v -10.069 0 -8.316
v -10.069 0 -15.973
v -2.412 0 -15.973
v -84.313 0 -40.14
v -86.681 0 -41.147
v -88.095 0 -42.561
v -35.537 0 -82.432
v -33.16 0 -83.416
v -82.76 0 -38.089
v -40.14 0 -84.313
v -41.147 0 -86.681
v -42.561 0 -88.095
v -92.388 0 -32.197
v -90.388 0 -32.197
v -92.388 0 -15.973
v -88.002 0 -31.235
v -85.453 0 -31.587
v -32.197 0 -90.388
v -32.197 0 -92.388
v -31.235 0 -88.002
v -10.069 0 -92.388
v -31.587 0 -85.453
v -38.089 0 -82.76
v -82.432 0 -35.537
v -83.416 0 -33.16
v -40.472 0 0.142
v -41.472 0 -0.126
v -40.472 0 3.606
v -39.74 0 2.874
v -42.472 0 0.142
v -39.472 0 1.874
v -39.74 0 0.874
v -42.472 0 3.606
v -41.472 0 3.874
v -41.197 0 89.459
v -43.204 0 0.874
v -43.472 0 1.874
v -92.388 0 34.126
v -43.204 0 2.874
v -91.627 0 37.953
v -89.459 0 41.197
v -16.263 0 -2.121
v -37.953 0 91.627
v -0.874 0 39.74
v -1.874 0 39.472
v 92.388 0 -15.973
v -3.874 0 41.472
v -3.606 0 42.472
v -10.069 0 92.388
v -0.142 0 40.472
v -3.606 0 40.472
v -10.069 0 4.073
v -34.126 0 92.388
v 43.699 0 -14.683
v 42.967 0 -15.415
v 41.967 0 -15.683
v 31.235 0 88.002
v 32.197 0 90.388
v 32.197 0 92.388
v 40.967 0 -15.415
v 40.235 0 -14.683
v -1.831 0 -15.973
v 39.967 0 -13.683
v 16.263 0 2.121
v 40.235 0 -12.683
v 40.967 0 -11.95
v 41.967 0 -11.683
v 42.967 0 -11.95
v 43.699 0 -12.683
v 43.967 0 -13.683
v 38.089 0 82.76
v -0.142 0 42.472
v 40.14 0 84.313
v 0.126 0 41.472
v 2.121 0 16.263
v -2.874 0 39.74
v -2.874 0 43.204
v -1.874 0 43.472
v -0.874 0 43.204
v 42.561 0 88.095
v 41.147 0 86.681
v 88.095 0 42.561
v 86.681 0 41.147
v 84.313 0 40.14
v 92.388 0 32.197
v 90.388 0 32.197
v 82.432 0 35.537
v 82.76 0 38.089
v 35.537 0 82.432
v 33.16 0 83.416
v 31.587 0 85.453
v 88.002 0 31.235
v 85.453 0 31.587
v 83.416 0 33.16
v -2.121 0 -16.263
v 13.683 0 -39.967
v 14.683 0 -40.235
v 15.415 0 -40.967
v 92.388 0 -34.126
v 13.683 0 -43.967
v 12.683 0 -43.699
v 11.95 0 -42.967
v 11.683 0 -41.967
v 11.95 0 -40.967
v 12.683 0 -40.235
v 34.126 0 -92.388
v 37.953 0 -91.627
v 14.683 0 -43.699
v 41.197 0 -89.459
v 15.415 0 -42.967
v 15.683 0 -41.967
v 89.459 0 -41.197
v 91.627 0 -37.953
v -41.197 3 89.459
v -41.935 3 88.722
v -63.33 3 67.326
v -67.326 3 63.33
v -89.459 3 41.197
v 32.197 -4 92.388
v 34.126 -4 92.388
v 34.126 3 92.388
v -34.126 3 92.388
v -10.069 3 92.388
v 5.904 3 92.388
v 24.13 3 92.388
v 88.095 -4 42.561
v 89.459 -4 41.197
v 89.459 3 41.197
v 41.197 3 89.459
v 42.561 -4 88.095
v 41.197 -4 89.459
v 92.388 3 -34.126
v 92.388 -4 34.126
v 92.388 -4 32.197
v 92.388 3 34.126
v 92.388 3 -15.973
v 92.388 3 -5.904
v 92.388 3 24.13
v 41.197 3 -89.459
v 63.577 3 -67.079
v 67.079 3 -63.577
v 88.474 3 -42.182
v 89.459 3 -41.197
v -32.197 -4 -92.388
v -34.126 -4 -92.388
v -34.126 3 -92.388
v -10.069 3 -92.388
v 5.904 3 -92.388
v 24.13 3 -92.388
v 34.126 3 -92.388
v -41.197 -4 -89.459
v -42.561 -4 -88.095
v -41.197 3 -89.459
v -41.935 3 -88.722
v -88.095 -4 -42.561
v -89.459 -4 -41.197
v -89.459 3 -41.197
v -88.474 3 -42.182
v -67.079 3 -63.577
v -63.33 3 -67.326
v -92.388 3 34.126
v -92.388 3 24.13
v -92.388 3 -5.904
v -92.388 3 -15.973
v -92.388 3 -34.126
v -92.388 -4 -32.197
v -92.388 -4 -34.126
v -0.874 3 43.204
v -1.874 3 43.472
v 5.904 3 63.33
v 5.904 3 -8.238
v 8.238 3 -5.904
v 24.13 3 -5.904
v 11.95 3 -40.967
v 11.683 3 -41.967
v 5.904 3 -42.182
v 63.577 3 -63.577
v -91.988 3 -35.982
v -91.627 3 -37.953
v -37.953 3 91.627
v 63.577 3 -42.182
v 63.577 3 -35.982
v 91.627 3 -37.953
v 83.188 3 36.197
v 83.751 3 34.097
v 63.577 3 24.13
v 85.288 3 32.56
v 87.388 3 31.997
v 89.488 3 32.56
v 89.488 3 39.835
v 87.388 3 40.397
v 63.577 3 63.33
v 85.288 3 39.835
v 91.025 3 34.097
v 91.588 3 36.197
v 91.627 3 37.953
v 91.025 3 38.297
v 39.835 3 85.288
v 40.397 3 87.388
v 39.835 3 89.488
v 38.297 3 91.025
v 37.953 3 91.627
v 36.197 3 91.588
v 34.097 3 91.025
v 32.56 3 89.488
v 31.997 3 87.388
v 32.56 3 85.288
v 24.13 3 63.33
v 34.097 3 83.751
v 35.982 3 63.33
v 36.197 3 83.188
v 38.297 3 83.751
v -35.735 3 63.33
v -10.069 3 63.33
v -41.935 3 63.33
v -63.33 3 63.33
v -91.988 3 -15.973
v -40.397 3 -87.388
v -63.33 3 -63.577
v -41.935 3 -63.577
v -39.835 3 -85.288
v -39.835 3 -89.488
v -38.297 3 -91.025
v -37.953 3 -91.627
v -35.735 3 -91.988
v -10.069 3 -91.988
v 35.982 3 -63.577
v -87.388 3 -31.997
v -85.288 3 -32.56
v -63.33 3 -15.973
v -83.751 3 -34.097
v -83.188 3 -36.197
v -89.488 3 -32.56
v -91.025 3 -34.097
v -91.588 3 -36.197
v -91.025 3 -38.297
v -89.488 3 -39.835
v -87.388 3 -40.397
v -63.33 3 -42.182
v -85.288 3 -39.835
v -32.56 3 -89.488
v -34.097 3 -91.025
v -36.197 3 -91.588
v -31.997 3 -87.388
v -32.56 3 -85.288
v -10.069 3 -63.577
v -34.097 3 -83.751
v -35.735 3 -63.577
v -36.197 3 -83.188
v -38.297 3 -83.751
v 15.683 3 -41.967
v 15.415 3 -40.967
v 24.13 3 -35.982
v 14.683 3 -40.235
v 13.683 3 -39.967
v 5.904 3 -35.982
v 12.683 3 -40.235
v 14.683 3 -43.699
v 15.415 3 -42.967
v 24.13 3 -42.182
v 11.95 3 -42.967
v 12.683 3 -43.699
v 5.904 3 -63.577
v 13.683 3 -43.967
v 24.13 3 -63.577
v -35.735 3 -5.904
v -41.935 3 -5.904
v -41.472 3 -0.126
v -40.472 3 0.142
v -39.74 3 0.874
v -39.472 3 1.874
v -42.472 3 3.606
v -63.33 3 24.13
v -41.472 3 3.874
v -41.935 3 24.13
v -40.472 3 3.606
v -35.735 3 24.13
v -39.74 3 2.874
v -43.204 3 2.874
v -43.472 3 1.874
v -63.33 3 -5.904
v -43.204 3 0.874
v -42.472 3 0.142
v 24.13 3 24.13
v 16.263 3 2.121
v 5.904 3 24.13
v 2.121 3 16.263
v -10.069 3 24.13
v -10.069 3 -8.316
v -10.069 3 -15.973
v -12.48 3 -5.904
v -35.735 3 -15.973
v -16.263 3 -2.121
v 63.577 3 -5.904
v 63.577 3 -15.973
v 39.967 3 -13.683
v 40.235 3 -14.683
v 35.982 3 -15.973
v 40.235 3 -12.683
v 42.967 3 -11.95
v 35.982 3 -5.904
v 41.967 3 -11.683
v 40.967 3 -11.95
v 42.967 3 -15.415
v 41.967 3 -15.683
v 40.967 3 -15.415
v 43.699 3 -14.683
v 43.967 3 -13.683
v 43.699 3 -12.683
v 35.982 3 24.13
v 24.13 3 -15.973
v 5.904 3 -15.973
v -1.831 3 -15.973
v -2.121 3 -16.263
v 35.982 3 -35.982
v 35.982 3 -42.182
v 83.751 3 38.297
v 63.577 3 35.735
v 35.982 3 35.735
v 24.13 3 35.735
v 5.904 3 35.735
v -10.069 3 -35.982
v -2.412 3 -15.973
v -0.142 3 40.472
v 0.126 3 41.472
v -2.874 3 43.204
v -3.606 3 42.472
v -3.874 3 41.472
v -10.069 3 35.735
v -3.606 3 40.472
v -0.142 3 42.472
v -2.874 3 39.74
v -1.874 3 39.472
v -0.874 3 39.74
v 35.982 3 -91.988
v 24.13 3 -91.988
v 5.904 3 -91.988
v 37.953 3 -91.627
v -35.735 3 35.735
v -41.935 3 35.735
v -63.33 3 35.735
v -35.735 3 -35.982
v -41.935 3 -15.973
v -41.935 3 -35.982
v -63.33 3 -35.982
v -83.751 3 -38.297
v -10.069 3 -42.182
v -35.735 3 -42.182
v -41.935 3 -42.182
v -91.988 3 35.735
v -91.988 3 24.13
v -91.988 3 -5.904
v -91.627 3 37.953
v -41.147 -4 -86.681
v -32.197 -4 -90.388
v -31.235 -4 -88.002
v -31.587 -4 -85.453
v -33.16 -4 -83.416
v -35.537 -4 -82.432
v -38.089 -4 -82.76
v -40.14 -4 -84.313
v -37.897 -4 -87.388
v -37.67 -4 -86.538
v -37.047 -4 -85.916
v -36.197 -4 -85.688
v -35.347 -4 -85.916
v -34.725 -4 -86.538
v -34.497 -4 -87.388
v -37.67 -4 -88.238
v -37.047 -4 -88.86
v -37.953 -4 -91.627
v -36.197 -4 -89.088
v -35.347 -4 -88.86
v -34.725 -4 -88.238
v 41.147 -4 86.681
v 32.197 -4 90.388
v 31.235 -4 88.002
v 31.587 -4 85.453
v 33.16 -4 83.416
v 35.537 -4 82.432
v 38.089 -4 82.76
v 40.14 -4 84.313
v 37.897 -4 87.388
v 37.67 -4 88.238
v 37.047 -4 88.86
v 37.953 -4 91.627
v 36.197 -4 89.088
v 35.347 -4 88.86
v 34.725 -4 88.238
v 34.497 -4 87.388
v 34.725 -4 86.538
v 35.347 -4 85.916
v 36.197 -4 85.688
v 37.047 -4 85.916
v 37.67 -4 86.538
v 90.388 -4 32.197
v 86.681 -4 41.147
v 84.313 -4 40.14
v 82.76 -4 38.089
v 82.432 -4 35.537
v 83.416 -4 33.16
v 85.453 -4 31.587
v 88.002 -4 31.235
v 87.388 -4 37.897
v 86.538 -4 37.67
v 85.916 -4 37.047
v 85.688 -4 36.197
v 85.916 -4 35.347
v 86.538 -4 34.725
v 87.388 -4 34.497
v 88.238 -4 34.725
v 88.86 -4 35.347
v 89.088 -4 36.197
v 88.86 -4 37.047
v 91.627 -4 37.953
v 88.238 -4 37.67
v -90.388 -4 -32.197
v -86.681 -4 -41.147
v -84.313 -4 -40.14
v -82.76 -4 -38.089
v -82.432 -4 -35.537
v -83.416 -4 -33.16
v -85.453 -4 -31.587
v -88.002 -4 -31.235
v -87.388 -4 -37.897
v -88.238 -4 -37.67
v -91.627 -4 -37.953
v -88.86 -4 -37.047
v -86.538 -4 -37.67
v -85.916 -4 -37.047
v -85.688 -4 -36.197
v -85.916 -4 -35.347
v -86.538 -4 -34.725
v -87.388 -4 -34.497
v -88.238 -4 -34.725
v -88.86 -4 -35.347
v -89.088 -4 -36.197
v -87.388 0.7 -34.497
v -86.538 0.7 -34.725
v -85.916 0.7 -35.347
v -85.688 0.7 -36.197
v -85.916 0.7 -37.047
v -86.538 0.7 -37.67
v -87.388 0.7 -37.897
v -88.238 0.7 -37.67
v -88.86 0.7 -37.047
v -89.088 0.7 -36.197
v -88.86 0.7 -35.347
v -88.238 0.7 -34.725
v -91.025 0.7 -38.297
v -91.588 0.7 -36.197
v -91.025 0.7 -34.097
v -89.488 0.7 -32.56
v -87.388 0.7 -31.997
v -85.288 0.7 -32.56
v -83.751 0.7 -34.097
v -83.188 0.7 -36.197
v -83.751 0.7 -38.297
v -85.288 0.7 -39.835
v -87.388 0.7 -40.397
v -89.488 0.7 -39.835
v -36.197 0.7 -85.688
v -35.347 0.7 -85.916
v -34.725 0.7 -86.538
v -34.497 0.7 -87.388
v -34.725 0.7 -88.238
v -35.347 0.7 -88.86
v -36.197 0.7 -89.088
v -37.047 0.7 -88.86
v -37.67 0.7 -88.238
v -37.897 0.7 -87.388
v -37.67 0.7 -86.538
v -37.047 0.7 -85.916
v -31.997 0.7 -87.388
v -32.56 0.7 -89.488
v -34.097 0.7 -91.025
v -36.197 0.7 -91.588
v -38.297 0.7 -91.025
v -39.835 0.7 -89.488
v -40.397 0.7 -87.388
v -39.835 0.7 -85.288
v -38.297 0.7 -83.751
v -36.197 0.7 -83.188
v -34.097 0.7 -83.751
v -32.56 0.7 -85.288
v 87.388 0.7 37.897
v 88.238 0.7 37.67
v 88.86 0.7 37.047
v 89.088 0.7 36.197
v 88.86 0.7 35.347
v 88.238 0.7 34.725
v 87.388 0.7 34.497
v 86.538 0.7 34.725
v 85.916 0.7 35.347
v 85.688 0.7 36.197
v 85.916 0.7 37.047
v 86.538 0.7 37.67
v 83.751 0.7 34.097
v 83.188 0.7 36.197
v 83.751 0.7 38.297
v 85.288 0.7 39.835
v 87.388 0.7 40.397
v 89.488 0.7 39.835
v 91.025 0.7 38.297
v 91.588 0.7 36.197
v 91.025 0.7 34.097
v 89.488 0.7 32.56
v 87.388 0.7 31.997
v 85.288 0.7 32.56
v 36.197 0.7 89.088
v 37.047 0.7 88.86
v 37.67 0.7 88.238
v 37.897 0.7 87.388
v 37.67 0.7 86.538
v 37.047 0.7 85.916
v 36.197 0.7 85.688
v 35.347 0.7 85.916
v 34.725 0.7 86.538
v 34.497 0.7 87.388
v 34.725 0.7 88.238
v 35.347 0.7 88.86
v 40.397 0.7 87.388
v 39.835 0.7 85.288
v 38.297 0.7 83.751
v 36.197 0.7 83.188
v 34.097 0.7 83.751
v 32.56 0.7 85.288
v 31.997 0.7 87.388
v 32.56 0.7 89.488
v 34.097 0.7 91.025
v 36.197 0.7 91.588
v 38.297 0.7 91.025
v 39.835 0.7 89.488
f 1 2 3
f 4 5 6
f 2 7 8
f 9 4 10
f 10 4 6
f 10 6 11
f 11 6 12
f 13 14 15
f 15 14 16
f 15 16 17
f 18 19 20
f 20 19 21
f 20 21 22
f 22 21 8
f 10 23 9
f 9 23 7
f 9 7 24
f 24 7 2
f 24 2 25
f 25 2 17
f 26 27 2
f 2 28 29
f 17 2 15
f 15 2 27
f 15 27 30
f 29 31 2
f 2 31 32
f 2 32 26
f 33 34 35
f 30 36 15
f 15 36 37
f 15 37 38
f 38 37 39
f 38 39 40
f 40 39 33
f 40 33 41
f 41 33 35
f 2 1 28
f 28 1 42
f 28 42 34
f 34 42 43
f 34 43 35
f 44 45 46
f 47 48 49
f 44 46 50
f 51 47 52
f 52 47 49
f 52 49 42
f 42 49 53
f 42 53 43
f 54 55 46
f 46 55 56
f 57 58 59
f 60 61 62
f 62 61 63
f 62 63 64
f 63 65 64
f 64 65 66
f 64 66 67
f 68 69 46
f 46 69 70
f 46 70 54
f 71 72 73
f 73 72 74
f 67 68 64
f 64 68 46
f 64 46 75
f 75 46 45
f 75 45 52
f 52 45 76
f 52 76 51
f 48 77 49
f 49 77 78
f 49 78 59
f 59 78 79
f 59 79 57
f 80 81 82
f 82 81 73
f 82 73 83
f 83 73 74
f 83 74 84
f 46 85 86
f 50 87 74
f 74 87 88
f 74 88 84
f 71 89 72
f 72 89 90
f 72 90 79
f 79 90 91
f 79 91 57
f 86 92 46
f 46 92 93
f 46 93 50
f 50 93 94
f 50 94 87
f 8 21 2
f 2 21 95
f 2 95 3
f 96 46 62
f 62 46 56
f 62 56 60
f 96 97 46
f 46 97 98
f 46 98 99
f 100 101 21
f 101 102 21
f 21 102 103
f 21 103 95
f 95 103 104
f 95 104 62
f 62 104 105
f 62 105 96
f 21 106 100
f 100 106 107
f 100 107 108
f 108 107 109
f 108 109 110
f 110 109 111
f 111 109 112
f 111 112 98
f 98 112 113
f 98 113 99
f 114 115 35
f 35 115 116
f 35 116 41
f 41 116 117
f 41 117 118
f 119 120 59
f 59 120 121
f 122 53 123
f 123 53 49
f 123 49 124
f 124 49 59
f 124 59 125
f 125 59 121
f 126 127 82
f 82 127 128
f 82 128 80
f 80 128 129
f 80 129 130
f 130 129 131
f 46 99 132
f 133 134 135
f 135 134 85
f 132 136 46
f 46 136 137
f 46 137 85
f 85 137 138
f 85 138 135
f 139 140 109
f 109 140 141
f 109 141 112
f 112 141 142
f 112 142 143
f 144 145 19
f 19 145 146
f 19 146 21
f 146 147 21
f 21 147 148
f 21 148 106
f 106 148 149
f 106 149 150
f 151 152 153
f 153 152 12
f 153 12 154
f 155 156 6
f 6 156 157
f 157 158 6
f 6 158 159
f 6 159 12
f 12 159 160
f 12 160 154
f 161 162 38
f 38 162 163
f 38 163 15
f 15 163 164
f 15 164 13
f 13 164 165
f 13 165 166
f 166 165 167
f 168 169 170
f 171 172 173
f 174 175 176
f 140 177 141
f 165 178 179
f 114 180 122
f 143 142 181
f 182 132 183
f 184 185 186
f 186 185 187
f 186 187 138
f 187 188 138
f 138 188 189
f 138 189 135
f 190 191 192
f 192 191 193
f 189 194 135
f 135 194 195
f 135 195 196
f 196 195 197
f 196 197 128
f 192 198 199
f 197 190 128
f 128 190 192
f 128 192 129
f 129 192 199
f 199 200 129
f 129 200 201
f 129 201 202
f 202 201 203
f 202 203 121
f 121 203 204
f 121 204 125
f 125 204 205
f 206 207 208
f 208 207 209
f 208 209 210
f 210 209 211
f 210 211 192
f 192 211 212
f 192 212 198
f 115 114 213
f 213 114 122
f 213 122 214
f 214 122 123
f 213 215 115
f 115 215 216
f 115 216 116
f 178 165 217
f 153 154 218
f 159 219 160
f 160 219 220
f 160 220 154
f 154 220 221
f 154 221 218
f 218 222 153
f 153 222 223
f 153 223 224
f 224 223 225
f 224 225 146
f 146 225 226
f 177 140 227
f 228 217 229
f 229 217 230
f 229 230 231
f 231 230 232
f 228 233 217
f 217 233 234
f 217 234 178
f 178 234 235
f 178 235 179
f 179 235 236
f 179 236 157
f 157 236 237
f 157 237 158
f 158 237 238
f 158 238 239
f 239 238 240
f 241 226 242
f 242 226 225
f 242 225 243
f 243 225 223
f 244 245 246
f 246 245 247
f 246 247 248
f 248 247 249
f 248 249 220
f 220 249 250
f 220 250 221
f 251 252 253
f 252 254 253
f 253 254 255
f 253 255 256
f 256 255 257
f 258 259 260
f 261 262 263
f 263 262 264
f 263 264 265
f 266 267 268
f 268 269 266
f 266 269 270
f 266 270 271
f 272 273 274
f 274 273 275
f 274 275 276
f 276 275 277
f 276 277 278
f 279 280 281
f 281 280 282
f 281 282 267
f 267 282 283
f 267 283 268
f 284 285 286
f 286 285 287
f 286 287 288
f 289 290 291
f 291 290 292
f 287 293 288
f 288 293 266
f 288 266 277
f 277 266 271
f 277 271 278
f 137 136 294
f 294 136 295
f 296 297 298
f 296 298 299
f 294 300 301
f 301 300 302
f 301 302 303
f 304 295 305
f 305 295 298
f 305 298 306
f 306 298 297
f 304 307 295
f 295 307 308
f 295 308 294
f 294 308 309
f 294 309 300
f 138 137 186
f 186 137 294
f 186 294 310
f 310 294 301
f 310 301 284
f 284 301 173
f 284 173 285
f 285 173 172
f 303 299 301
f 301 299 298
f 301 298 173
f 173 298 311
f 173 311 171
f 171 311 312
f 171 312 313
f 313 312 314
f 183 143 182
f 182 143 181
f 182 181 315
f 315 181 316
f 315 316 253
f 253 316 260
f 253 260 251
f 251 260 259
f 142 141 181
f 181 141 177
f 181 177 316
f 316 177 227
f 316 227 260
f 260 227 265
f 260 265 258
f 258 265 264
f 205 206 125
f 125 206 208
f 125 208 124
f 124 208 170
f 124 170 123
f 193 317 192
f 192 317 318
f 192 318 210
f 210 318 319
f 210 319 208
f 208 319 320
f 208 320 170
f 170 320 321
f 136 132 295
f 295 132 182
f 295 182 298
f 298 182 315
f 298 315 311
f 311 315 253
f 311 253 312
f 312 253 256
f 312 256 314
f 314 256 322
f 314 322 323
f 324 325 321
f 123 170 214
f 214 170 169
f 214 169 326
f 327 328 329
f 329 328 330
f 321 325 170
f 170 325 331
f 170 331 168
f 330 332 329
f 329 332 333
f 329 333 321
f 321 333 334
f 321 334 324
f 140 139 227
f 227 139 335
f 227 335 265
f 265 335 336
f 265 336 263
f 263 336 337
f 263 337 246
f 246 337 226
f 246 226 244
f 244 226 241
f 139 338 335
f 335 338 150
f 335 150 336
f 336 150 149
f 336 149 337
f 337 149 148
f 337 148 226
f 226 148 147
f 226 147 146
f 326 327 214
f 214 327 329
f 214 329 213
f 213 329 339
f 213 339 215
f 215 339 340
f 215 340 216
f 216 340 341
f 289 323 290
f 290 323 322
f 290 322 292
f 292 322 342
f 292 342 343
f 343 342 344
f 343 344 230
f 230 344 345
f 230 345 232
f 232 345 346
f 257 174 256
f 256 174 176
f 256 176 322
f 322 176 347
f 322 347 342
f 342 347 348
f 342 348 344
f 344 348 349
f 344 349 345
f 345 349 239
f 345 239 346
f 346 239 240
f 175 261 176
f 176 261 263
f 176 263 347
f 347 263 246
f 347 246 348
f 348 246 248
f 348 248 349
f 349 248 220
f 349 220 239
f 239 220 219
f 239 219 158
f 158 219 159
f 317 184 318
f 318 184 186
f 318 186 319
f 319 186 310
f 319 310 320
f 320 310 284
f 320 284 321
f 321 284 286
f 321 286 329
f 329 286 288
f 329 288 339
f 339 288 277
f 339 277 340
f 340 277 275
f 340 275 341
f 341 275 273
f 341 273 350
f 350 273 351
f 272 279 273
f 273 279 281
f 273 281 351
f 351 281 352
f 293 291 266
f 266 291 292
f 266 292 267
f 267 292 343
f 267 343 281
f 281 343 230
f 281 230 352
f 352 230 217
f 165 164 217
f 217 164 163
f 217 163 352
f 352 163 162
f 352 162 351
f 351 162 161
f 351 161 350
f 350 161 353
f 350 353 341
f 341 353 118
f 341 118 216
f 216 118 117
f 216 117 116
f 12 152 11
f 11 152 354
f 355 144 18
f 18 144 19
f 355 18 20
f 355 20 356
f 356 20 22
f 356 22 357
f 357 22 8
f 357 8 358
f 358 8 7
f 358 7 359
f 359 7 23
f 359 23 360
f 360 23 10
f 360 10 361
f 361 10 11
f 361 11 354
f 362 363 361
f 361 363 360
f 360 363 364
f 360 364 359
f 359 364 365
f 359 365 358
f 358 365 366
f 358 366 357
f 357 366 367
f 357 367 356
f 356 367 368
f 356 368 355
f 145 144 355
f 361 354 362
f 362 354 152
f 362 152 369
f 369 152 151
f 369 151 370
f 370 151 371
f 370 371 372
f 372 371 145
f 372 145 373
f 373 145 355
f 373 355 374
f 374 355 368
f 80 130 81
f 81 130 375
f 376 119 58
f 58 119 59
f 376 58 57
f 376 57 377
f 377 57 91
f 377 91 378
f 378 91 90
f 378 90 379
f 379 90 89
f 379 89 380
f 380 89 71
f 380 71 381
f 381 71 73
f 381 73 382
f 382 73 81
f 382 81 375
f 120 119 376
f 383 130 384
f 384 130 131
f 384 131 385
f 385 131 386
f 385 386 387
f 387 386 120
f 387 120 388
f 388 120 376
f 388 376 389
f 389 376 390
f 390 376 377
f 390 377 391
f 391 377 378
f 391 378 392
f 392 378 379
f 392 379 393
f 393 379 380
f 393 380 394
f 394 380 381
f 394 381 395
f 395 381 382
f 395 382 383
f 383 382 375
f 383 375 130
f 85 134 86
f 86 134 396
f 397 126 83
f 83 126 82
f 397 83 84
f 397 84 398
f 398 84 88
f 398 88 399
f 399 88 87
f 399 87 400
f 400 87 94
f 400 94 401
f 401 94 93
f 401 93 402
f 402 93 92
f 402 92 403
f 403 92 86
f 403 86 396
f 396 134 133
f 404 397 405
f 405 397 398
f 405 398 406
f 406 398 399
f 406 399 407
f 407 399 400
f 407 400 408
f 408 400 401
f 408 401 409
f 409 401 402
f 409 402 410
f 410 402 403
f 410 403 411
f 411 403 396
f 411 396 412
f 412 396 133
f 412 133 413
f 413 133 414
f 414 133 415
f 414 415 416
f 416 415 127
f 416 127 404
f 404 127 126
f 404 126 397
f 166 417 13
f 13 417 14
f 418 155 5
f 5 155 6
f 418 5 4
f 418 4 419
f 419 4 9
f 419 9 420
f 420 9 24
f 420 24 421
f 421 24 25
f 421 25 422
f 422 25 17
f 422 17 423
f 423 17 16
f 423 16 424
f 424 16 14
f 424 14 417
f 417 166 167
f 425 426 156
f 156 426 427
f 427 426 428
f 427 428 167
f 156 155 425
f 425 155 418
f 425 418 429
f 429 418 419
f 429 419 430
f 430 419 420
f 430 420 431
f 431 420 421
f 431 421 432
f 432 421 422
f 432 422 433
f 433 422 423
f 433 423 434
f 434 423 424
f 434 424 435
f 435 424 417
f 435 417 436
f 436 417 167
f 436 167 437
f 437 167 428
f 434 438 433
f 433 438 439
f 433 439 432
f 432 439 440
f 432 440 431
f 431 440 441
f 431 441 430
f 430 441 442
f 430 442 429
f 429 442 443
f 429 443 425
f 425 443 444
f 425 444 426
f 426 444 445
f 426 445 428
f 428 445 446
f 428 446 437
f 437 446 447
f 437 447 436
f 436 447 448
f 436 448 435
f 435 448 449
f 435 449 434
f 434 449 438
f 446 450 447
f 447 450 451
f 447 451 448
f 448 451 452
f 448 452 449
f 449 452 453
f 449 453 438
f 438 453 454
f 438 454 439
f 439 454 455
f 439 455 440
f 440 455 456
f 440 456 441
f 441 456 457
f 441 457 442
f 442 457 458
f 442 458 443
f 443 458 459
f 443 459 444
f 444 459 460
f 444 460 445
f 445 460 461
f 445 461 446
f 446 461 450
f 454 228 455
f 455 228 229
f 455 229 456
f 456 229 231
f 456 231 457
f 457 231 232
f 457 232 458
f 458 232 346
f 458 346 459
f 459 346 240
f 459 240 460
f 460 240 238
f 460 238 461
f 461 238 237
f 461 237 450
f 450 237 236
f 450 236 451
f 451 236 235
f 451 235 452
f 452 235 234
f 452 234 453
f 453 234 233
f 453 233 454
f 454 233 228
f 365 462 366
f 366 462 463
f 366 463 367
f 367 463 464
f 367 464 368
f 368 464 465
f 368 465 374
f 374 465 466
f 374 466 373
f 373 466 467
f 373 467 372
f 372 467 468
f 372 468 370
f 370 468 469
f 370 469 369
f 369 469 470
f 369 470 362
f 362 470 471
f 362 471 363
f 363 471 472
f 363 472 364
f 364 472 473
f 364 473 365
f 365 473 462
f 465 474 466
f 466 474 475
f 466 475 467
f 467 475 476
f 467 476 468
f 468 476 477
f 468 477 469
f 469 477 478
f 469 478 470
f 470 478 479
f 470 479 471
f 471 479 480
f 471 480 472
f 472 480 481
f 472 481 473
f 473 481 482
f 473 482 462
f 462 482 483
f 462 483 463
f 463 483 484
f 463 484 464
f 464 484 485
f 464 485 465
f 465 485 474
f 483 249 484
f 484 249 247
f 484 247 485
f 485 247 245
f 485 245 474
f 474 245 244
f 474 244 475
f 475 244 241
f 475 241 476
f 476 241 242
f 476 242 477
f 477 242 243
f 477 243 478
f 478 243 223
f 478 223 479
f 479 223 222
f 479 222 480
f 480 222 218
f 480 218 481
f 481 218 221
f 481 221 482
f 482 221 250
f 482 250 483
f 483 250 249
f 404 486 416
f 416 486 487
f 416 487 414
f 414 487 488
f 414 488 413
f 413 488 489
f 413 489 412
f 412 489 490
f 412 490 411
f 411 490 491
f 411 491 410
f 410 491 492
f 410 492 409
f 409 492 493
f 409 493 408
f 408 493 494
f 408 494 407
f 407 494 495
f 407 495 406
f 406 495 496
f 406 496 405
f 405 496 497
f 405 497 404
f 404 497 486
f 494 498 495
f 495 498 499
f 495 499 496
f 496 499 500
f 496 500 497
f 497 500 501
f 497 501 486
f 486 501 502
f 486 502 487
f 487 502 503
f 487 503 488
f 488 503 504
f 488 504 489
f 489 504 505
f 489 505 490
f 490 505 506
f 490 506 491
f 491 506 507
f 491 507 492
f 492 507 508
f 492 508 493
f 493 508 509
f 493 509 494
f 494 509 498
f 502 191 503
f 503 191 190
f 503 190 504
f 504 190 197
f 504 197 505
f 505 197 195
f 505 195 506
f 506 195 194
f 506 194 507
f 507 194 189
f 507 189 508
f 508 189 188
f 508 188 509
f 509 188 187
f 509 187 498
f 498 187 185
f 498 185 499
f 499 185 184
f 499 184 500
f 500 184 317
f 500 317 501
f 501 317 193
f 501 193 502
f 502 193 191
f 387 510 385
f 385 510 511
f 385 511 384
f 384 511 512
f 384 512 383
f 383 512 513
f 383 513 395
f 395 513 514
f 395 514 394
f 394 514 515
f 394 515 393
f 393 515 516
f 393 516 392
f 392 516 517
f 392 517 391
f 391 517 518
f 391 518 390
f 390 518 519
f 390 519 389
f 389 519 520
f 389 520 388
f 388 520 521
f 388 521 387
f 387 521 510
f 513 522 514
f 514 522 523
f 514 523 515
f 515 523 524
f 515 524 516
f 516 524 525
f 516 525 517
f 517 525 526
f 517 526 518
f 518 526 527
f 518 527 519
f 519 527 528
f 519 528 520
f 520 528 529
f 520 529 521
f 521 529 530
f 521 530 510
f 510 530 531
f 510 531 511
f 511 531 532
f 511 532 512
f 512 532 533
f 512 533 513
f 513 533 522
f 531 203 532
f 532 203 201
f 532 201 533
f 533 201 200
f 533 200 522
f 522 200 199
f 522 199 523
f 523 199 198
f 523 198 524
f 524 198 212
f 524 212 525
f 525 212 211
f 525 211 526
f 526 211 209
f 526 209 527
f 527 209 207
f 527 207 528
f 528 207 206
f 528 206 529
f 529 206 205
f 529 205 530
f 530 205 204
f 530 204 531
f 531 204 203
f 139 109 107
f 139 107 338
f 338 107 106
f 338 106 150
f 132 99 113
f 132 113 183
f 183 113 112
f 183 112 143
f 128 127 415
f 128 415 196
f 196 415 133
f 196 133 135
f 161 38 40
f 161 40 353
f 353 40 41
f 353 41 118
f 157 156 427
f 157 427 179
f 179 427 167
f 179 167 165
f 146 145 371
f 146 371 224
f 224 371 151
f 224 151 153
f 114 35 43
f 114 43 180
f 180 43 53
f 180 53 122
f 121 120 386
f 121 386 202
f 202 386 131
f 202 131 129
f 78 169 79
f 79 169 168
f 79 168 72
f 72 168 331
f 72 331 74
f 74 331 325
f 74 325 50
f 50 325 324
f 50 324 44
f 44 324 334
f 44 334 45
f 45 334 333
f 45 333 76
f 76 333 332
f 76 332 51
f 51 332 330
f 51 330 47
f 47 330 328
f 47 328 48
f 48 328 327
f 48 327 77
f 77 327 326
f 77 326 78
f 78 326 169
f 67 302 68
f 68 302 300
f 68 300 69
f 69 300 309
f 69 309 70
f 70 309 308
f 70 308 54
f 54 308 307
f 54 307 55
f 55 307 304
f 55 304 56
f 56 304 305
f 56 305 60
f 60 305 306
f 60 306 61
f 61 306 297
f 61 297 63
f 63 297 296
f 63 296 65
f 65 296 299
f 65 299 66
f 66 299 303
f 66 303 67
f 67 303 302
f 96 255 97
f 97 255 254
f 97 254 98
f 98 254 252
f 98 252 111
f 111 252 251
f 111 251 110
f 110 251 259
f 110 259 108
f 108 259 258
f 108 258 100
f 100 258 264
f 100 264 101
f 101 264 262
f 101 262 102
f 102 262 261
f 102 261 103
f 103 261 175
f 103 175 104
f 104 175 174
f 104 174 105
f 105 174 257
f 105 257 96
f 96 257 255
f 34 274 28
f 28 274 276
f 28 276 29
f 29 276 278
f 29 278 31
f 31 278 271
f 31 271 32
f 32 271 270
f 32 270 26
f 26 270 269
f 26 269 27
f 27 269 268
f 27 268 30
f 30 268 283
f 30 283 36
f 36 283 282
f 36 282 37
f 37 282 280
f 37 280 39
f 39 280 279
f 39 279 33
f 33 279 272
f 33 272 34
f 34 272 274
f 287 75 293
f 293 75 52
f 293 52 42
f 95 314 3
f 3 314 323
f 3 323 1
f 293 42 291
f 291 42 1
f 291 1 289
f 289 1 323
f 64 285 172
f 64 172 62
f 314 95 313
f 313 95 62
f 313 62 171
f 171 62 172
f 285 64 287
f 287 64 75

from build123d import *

# Parameters (mm, degrees)
BOSS_EXTRUDE1_DEPTH                              = 3
BOSS_EXTRUDE3_DEPTH                              = 7
CBORE_FOR_M3_HEX_HEAD_MACHINE_SCREW1_D           = 3.4
CBORE_FOR_M3_HEX_HEAD_MACHINE_SCREW1_CBORE_D     = 8.4
CBORE_FOR_M3_HEX_HEAD_MACHINE_SCREW1_CBORE_DEPTH = 2.3
FILLET1_R                                        = 10
SKETCH23_R                                       = 2
CUT_EXTRUDE1_DEPTH                               = 131.843677004
CUT_EXTRUDE2_DEPTH                               = 131.843677004


with BuildPart() as part:
    # Sketch1 → Boss-Extrude1 (new body)
    with BuildSketch(Plane(origin=(0, 0, 0), x_dir=(1, 0, 0), z_dir=(0, 1, 0))):
        Polygon((92.387953251, -38.268343237), (92.387953251, 38.268343237), (38.268343237, 92.387953251), (-38.268343237, 92.387953251), (-92.387953251, 38.268343237), (-92.387953251, -38.268343237), (-38.268343237, -92.387953251), (38.268343237, -92.387953251), align=None)
    extrude(amount=BOSS_EXTRUDE1_DEPTH)

    # Sketch13 → Boss-Extrude3 (add)
    with BuildSketch(Plane(origin=(0, 3, 0), x_dir=(1, 0, 0), z_dir=(0, 1, 0))):
        with BuildLine():
            ThreePointArc((-90.387953251, 32.197275425), (-82.768555589, 34.283858263), (-86.68084647, 41.147022893))
            Line((-86.68084647, 41.147022893), (-88.095060032, 42.561236455))
            Line((-88.095060032, 42.561236455), (-92.387953251, 38.268343237))
            Line((-92.387953251, 38.268343237), (-92.387953251, 32.197275425))
            Line((-92.387953251, 32.197275425), (-90.387953251, 32.197275425))
        make_face()
        with BuildLine():
            Line((92.387953251, -32.197275425), (90.387953251, -32.197275425))
            ThreePointArc((90.387953251, -32.197275425), (82.768555589, -34.283858263), (86.68084647, -41.147022893))
            Line((86.68084647, -41.147022893), (88.095060032, -42.561236455))
            Line((88.095060032, -42.561236455), (92.387953251, -38.268343237))
            Line((92.387953251, -38.268343237), (92.387953251, -32.197275425))
        make_face()
        with BuildLine():
            Line((38.268343237, -92.387953251), (42.561236455, -88.095060032))
            Line((42.561236455, -88.095060032), (41.147022893, -86.68084647))
            ThreePointArc((41.147022893, -86.68084647), (34.283858263, -82.768555589), (32.197275425, -90.387953251))
            Line((32.197275425, -90.387953251), (32.197275425, -92.387953251))
            Line((32.197275425, -92.387953251), (38.268343237, -92.387953251))
        make_face()
        with BuildLine():
            ThreePointArc((-41.147022893, 86.68084647), (-34.283858263, 82.768555589), (-32.197275425, 90.387953251))
            Line((-32.197275425, 90.387953251), (-32.197275425, 92.387953251))
            Line((-32.197275425, 92.387953251), (-38.268343237, 92.387953251))
            Line((-38.268343237, 92.387953251), (-42.561236455, 88.095060032))
            Line((-42.561236455, 88.095060032), (-41.147022893, 86.68084647))
        make_face()
    extrude(amount=-BOSS_EXTRUDE3_DEPTH)

    # CBORE for M3 Hex Head Machine Screw1 (through all)
    with Locations(Plane(origin=(0, 3, 0), x_dir=(1, 0, 0), z_dir=(0, 1, 0))):
        with Locations((36.197275425, -87.387953251), (87.387953251, -36.197275425), (-36.197275425, 87.387953251), (-87.387953251, 36.197275425)):
            CounterBoreHole(CBORE_FOR_M3_HEX_HEAD_MACHINE_SCREW1_D / 2, CBORE_FOR_M3_HEX_HEAD_MACHINE_SCREW1_CBORE_D / 2, CBORE_FOR_M3_HEX_HEAD_MACHINE_SCREW1_CBORE_DEPTH)

    # Fillet1
    fillet1_edges = [part.edges().sort_by_distance(p)[0] for p in [
        (-92.387953251, 1.5, 38.268343237),
        (-92.387953251, -0.5, -38.268343237),
        (-38.268343237, -0.5, -92.387953251),
        (38.268343237, 1.5, -92.387953251),
        (92.387953251, 1.5, -38.268343237),
        (92.387953251, -0.5, 38.268343237),
        (38.268343237, -0.5, 92.387953251),
        (-38.268343237, 1.5, 92.387953251),
    ]]
    fillet(fillet1_edges, radius=FILLET1_R)

    # Sketch23 → Cut-Extrude1 (cut, through all)
    with BuildSketch(Plane(origin=(0, 3, 0), x_dir=(1, 0, 0), z_dir=(0, 1, 0))):
        with Locations(Location((-41.471812717, -1.87383297, 0), (0, 0, 270))):
            Circle(SKETCH23_R)
        with Locations(Location((13.682516216, 41.966787463, 0), (0, 0, 270))):
            Circle(SKETCH23_R)
        with Locations(Location((41.966787463, 13.682516216, 0), (0, 0, 270))):
            Circle(SKETCH23_R)
        with Locations(Location((-1.87383297, -41.471812717, 0), (0, 0, 270))):
            Circle(SKETCH23_R)
    extrude(amount=-CUT_EXTRUDE1_DEPTH, mode=Mode.SUBTRACT)

    # Sketch24 → Cut-Extrude2 (cut, through all)
    with BuildSketch(Plane(origin=(0, 3, 0), x_dir=(1, 0, 0), z_dir=(0, 1, 0))):
        Polygon((-16.263455967, 2.121320344), (-2.121320344, 16.263455967), (16.263455967, -2.121320344), (2.121320344, -16.263455967), align=None)
    extrude(amount=-CUT_EXTRUDE2_DEPTH, mode=Mode.SUBTRACT)


solid = part.part
